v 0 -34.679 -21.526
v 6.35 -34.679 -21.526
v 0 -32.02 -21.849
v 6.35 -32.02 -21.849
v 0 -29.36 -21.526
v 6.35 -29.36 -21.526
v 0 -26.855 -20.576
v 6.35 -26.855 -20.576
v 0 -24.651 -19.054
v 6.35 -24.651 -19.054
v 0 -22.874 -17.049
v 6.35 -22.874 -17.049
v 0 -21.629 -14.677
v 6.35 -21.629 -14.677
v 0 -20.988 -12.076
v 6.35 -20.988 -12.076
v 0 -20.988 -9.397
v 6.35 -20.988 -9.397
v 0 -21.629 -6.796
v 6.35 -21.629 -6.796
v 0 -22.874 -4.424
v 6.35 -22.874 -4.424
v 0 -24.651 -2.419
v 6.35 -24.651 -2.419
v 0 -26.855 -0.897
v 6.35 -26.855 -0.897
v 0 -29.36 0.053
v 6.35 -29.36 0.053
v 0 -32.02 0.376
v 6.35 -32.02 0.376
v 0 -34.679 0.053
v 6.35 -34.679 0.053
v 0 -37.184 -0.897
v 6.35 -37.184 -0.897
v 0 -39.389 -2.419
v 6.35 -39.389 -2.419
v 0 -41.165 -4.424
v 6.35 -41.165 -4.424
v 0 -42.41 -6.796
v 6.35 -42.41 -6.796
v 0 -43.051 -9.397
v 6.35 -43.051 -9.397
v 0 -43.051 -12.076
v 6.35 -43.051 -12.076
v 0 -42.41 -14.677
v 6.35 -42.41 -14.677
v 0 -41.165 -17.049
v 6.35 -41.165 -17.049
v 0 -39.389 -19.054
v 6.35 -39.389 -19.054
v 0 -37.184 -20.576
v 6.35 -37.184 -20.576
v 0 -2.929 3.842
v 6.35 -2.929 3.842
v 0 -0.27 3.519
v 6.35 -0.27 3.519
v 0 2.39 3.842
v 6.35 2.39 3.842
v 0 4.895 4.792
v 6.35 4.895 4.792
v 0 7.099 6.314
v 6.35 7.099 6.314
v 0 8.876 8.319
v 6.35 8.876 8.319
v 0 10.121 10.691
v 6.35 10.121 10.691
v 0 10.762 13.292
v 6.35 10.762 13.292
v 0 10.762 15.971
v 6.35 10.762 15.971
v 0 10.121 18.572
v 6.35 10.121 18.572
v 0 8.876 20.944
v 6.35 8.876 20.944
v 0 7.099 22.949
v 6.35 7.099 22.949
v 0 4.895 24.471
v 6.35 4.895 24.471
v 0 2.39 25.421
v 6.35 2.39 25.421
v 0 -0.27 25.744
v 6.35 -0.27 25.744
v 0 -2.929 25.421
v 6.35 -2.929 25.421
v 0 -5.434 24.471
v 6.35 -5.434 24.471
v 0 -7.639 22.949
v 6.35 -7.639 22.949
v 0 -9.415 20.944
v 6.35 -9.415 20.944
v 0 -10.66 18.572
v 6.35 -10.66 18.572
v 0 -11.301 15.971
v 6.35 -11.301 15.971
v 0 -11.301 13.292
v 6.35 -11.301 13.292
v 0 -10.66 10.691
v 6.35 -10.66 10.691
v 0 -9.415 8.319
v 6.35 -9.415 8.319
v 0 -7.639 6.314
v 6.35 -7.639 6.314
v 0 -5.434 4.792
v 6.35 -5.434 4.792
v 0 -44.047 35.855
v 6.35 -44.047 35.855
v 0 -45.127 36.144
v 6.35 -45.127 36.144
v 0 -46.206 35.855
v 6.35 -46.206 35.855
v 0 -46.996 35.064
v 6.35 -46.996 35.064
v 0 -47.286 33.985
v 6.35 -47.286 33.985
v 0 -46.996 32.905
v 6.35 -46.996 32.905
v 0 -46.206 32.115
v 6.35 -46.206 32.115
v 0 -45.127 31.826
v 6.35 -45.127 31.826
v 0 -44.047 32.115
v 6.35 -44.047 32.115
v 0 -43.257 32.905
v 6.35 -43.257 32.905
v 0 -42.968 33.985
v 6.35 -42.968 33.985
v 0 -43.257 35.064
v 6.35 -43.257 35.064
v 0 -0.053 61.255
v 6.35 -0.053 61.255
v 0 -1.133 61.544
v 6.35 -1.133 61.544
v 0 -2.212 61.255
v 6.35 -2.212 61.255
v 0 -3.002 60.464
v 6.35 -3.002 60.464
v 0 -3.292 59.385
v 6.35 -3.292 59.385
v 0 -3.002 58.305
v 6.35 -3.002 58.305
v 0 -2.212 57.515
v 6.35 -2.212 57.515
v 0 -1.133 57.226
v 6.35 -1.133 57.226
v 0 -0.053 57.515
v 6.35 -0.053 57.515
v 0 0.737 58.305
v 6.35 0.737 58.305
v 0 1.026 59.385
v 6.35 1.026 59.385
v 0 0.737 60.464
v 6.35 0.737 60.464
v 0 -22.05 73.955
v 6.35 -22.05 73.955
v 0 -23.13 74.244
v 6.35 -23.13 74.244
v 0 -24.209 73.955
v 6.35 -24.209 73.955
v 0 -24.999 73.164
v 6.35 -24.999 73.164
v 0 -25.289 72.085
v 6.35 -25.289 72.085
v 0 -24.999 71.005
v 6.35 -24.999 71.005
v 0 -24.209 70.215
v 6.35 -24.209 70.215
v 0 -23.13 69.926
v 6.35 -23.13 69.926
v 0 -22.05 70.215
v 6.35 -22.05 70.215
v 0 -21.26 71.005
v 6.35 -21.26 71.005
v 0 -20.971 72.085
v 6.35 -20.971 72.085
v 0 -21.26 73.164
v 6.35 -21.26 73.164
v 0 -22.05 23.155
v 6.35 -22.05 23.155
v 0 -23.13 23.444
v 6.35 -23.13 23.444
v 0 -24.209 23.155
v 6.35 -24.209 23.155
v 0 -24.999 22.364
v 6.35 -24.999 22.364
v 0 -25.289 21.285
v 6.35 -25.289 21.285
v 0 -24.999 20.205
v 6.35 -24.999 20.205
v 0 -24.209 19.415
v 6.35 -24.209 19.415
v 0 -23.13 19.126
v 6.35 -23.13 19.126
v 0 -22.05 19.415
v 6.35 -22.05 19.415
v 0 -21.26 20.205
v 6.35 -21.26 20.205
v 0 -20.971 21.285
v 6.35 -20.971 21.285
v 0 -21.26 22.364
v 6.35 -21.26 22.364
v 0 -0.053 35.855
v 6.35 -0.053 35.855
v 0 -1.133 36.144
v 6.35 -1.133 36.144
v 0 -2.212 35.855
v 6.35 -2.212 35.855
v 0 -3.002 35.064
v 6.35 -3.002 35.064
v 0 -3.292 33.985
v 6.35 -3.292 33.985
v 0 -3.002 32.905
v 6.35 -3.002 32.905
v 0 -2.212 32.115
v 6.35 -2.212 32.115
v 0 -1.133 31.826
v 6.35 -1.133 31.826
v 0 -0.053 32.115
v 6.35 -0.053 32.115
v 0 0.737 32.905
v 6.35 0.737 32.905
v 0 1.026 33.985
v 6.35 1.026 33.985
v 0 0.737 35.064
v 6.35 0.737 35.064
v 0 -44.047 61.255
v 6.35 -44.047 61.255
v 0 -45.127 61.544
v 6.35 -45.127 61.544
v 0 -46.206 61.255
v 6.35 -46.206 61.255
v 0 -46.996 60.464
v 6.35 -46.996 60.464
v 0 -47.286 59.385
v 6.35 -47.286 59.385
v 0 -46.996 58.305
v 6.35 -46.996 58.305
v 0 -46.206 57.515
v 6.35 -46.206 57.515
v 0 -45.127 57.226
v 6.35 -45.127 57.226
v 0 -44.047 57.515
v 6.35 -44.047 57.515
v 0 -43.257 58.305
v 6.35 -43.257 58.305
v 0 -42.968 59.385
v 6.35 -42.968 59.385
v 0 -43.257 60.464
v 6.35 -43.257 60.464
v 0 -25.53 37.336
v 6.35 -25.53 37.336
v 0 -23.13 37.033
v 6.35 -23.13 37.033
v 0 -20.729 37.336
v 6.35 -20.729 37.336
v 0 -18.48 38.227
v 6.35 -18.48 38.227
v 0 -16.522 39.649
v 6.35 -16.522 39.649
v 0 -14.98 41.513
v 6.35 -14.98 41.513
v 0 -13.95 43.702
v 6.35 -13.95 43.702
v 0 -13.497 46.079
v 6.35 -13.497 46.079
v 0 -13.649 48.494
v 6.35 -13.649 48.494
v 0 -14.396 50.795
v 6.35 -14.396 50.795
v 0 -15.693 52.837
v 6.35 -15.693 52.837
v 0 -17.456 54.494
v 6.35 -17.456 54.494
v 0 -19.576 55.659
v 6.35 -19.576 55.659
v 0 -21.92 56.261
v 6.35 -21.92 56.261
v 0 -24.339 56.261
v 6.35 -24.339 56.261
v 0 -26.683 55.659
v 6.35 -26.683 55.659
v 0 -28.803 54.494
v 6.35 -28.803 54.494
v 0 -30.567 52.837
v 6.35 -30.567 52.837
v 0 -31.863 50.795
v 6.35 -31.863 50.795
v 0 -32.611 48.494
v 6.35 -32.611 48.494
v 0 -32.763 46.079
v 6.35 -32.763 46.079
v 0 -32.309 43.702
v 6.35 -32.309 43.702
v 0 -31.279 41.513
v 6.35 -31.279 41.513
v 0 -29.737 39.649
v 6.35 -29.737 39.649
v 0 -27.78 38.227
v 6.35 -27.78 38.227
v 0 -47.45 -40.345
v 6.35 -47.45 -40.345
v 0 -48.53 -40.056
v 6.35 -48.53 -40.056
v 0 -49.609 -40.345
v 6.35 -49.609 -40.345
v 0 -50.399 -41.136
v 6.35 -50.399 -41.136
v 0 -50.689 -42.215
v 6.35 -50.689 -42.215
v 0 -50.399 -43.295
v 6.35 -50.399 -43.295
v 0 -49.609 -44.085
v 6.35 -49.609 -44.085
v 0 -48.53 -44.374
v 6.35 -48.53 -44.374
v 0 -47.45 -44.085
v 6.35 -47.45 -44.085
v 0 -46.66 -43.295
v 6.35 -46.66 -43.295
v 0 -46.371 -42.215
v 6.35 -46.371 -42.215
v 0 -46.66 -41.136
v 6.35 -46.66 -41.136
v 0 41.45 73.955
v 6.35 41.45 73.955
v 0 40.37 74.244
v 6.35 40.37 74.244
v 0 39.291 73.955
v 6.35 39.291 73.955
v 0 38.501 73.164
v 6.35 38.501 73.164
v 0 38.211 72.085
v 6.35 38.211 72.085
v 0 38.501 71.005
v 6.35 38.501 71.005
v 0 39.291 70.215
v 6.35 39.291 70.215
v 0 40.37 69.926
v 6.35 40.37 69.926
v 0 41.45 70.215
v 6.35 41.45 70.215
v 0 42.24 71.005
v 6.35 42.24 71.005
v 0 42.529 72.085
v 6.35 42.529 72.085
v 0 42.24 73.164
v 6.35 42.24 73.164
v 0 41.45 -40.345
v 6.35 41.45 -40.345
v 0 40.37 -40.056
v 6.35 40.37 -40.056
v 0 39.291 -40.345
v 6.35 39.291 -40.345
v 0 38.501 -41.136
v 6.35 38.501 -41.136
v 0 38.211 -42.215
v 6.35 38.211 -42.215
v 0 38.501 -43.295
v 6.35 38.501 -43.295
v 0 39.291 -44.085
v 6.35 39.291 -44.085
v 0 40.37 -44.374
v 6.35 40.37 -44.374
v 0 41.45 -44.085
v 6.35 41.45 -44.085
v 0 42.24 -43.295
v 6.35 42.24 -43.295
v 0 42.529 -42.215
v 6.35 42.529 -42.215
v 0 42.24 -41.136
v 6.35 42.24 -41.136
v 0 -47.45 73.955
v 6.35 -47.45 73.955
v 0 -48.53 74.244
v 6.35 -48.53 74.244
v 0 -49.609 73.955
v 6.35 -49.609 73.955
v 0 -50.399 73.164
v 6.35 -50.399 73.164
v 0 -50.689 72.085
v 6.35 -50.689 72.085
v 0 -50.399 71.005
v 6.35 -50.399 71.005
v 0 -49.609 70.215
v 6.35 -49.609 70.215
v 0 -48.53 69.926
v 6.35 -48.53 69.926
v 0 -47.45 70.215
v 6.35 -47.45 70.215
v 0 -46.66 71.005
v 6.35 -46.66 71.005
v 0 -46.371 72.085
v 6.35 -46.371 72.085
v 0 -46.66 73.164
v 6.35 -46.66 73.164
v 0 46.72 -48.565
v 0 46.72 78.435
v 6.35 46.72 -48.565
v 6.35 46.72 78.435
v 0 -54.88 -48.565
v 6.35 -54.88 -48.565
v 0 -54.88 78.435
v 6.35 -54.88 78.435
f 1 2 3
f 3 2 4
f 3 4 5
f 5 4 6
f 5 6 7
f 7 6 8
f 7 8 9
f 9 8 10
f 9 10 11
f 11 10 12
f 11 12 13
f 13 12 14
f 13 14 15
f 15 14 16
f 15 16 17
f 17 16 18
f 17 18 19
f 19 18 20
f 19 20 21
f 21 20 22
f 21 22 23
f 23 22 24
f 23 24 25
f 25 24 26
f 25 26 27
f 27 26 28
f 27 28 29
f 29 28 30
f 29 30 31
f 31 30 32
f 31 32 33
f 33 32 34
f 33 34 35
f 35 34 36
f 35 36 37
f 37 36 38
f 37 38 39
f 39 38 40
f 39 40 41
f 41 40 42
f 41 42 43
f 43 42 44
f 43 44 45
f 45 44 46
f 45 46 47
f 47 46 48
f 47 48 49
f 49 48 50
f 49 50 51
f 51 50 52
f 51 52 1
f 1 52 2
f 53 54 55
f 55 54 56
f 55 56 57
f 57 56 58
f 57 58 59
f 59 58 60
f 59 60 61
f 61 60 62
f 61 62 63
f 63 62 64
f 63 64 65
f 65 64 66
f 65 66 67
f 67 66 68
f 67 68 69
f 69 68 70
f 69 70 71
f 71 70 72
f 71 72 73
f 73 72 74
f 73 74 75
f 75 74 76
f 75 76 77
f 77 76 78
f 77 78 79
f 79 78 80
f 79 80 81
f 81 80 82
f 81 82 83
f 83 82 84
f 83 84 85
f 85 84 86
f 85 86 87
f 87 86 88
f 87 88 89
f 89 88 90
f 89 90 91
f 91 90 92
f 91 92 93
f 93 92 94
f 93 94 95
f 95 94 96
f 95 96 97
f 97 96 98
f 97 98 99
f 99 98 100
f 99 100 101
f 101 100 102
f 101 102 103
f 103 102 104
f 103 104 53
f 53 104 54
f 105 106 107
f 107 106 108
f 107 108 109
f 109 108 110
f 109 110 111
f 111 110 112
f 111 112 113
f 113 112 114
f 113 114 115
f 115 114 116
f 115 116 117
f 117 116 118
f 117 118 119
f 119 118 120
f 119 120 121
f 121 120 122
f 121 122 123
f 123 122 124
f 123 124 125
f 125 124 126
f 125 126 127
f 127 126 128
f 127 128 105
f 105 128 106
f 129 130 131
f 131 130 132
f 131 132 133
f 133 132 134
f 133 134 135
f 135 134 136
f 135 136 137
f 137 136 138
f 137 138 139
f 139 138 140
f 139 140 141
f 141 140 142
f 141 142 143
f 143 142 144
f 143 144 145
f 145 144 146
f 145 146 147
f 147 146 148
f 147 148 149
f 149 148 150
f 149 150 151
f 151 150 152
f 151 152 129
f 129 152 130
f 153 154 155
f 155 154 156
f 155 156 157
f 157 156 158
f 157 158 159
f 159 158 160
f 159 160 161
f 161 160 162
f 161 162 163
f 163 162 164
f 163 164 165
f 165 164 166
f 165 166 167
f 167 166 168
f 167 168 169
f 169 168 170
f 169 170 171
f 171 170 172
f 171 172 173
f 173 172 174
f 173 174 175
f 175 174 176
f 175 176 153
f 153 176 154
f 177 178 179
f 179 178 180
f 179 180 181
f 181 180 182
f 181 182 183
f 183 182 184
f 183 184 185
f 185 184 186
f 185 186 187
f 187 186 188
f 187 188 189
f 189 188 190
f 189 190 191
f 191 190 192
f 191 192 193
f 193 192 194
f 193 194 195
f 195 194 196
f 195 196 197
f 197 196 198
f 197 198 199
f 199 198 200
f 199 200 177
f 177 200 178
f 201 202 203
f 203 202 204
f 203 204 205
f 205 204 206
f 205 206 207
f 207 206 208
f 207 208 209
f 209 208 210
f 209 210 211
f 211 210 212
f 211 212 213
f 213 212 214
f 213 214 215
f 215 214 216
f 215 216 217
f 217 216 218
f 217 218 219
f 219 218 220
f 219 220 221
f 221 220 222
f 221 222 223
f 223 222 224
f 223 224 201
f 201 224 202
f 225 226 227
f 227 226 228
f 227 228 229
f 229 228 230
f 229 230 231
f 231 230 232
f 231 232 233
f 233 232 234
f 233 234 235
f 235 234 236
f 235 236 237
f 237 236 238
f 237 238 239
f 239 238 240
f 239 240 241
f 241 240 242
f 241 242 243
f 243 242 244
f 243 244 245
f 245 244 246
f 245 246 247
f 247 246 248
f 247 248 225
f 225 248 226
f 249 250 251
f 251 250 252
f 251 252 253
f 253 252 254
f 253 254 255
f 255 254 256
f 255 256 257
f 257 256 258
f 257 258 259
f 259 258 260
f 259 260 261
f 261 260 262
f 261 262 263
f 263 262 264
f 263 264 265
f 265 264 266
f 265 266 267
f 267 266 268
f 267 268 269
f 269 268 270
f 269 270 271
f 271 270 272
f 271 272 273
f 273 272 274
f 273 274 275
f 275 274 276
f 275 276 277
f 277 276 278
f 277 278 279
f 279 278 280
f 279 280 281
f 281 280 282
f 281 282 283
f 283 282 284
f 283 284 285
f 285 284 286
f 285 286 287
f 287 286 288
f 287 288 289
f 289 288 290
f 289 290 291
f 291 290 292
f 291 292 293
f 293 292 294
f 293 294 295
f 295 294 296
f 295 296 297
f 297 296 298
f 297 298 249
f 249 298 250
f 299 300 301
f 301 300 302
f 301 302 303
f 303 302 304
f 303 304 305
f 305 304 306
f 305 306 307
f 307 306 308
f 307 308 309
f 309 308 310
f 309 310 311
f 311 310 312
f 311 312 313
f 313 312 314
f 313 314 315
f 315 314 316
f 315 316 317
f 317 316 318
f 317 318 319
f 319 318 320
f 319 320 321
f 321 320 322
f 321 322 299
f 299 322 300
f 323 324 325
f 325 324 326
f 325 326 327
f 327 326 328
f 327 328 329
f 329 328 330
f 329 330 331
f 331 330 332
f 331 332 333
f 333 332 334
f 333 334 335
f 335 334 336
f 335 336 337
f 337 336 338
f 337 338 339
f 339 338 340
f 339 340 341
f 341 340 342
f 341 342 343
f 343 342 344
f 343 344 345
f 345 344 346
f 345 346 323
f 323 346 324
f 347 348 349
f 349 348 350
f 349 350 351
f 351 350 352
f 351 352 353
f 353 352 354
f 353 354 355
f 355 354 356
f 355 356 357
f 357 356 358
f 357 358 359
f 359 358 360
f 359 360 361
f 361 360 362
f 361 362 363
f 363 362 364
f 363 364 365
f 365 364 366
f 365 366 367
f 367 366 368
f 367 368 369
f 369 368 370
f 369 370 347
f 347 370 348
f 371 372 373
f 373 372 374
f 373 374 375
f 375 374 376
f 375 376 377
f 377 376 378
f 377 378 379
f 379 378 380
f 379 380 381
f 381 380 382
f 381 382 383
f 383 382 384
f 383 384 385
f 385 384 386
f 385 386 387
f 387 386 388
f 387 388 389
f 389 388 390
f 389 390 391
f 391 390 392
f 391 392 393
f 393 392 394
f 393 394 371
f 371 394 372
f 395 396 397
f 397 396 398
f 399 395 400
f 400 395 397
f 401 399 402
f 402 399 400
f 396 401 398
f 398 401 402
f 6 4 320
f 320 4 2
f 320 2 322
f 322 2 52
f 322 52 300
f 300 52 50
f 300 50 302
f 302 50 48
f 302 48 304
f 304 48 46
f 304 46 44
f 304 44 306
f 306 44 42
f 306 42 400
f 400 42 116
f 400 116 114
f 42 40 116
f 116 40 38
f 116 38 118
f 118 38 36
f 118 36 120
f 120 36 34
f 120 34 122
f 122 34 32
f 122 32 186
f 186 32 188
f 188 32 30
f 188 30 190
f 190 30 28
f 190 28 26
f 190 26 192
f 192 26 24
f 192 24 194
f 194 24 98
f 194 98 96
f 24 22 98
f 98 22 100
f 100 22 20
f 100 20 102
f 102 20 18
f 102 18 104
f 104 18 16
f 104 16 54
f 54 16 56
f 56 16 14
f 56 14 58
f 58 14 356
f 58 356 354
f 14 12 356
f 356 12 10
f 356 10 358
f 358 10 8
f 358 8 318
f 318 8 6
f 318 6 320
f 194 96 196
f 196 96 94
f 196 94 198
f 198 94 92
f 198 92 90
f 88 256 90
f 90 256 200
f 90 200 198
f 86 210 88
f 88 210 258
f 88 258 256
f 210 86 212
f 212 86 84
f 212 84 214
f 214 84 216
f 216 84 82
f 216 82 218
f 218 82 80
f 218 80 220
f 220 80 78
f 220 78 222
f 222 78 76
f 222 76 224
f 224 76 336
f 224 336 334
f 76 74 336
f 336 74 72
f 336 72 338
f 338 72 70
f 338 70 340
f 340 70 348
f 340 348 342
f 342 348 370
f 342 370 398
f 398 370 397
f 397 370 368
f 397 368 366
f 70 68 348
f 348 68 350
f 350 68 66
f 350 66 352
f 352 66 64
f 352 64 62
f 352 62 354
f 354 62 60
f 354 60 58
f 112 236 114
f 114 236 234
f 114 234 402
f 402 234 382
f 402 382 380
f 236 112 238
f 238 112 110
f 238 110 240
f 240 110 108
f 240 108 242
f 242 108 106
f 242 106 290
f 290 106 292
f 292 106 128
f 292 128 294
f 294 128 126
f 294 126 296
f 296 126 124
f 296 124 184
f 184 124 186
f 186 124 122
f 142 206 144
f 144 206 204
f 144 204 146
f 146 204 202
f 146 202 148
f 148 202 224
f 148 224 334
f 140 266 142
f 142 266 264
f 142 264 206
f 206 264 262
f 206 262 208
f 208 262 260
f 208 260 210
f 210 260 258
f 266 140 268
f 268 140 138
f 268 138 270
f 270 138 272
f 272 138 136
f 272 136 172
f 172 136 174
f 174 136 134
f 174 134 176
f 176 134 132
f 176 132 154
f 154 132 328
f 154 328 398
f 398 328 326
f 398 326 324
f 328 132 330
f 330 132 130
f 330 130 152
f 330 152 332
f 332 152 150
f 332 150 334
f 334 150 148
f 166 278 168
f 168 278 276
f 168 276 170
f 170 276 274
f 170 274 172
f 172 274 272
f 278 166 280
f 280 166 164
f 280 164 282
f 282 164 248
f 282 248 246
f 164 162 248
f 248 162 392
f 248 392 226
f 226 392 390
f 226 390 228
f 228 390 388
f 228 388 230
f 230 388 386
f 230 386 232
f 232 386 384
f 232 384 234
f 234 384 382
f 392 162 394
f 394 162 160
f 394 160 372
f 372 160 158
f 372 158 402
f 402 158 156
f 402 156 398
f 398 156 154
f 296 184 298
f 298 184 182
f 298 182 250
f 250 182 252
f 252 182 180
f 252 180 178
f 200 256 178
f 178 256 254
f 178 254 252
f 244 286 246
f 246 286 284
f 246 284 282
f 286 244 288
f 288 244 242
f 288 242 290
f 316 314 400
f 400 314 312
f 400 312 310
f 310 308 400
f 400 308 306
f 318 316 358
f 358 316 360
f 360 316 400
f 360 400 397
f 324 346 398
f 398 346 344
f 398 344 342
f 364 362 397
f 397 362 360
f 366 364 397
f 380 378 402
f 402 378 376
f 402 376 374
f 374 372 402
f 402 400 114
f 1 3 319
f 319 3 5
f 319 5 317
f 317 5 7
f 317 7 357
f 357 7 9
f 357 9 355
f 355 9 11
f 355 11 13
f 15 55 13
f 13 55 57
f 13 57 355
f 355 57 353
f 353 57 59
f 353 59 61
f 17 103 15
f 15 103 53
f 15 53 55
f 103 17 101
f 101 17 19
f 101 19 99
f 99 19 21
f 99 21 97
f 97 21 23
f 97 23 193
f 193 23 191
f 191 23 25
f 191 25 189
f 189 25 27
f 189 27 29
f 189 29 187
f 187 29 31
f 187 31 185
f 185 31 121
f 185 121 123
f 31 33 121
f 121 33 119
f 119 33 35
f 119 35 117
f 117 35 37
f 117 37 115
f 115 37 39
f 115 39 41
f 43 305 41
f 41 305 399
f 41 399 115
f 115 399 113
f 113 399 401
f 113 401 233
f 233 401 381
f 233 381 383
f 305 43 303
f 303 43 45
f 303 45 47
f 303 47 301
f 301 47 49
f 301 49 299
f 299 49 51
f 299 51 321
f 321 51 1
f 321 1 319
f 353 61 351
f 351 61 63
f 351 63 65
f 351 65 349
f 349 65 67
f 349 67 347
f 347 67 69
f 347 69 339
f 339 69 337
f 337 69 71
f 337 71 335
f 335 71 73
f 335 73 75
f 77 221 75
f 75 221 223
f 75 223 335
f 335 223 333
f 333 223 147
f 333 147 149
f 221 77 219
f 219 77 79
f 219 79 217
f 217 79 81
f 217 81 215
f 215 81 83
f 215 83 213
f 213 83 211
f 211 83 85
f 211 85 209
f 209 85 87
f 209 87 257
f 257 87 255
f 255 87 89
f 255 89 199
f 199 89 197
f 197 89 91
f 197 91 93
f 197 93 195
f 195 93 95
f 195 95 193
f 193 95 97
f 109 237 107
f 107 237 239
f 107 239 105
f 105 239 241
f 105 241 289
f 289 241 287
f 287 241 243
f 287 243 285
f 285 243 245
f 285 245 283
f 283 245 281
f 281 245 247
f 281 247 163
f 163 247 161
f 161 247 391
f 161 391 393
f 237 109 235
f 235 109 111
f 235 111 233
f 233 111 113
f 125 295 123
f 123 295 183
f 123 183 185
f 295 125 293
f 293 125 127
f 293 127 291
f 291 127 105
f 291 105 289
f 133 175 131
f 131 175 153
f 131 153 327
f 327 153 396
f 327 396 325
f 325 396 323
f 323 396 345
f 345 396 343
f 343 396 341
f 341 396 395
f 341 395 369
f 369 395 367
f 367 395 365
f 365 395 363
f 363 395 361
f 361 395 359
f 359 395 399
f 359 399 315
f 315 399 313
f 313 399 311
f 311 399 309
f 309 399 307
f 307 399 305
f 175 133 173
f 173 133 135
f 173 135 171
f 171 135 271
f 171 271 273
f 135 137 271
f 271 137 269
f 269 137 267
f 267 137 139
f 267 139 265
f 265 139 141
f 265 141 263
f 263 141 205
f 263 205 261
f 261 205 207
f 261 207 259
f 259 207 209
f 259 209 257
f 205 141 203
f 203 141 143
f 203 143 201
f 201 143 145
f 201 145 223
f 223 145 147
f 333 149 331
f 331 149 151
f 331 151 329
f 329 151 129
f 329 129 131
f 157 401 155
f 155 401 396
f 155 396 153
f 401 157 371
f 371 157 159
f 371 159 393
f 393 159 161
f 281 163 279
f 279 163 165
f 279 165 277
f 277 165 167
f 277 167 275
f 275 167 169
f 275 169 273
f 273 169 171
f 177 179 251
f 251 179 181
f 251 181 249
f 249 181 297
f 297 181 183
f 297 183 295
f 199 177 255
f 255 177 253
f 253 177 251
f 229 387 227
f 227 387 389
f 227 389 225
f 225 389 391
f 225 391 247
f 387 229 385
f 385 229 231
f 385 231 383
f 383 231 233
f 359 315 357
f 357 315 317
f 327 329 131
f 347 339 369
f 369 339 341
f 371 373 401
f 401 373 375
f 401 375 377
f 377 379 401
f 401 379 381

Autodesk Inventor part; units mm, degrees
ref_plane "YZ Plane" through (0, 0, 0) normal (1, 0, 0) x (0, 1, 0)
ref_plane "XZ Plane" through (0, 0, 0) normal (0, 1, 0) x (-1, 0, 0)
ref_plane "XY Plane" through (0, 0, 0) normal (0, 0, 1) x (1, 0, 0)
sketch "Sketch1" plane through (0, 0, 0) normal (1, 0, 0) x (0, 1, 0)
  line L0 (46.7204, 78.4349) -> (-54.8796, 78.4349)
  line L1 (-54.8796, 78.4349) -> (-54.8796, -48.5651)
  line L2 (-54.8796, -48.5651) -> (46.7204, -48.5651)
  line L3 (46.7204, -48.5651) -> (46.7204, 78.4349)
  point P0 (0, 0)
  dimension "d0" = 127
  dimension "d1" = 101.6
extrude "Extrusion1" add sketch "Sketch1" along normal blind 6.35
sketch "Sketch2" plane through (6.35, 0, 0) normal (1, 0, 0) x (0, 0, -1)
  line L0 (48.5651, 46.7204) -> (-78.4349, 46.7204) projected
  line L1 (-78.4349, 46.7204) -> (-78.4349, -54.8796) projected
  line L2 (-78.4349, -54.8796) -> (48.5651, -54.8796) projected
  line L3 (48.5651, -54.8796) -> (48.5651, 46.7204) projected
  point P0 (0, 0)
  point P1 (-72.0849, 40.3704)
  point P2 (42.2151, 40.3704)
  point P3 (42.2151, -48.5296)
  point P4 (-72.0849, -48.5296)
  dimension "d4" = 0
  dimension "d5" = 0
  dimension "d6" = 0
  dimension "d7" = 0
  dimension "d8" = 6.35
  dimension "d9" = 6.35
  dimension "d10" = 6.35
  dimension "d11" = 6.35
hole "Hole1" at (6.35, 40.3704, 72.0849) at (6.35, 40.3704, -42.2151) at (6.35, -48.5296, -42.2151) at (6.35, -48.5296, 72.0849) direction (-1, 0, 0) diameter 4.318 end through all
sketch "Sketch3" plane through (6.35, 0, 0) normal (1, 0, 0) x (0, 0, -1)
  circle A0 centre (-46.6849, -23.1296) radius 9.652
  line L0 (-78.4349, -54.8796) -> (48.5651, -54.8796) projected
  line L1 (-78.4349, 46.7204) -> (-78.4349, -54.8796) projected
  point P0 (0, 0)
  dimension "d19" = 19.304
  dimension "d20" = 31.75
  dimension "d21" = 31.75
extrude "Extrusion2" cut sketch "Sketch3" against normal blind 61.9125
sketch "Sketch4" plane through (6.35, 0, 0) normal (1, 0, 0) x (0, 0, -1)
  circle A0 centre (-46.6849, -23.1296) radius 9.652 projected
  circle A1 centre (-46.6849, -23.1296) radius 9.652 projected
  circle A2 centre (-46.6849, -23.1296) radius 25.4
  line L0 (-46.6849, -23.1296) -> (-105.0514, -23.1296)
  line L1 (-46.6849, -23.1296) -> (-64.9089, 8.4353)
  line L2 (-46.6849, -23.1296) -> (-26.8908, 11.1548)
  line L3 (-46.6849, -23.1296) -> (1.7612, -23.1296)
  line L4 (-46.6849, -23.1296) -> (-29.0867, -53.6105)
  line L5 (-46.6849, -23.1296) -> (-67.8043, -59.7094)
  point P0 (0, 0)
  point P1 (-72.0849, -23.1296)
  point P2 (-21.2849, -23.1296)
  point P3 (-59.3849, -1.1326)
  point P4 (-33.9849, -1.1326)
  point P5 (-33.9849, -45.1267)
  point P6 (-59.3849, -45.1267)
  dimension "d24" = 50.8
  dimension "d25" = 60
  dimension "d26" = 60
  dimension "d27" = 60
  dimension "d28" = 60
hole "Hole2" at (6.35, -23.1296, 72.0849) at (6.35, -23.1296, 21.2849) at (6.35, -1.1326, 59.3849) at (6.35, -1.1326, 33.9849) at (6.35, -45.1267, 33.9849) at (6.35, -45.1267, 59.3849) direction (-1, 0, 0) diameter 4.318 end through all
sketch "Sketch5" plane through (6.35, 0, 0) normal (1, 0, 0) x (0, 0, -1)
  circle A0 centre (-14.6316, -0.2696) radius 11.1125
  circle A1 centre (-46.6849, -23.1296) radius 9.652 projected
  circle A2 centre (-46.6849, -23.1296) radius 39.37
  point P0 (0, 0)
  dimension "d37" = 78.74
  dimension "d36" = 22.225
  dimension "d44" = 22.86
extrude "Extrusion3" cut sketch "Sketch5" against normal blind 66.675 contours A0 A2 | A2 A0 picked at (-11.8926, 2.0476) picked at (-17.7425, -2.4882)
sketch "Sketch6" plane through (6.35, 0, 0) normal (1, 0, 0) x (0, 0, -1)
  circle A0 centre (-14.6316, -0.2696) radius 11.1125 projected
  circle A1 centre (-14.6316, -0.2696) radius 40.64
  circle A2 centre (10.7367, -32.0196) radius 11.1125
  line L0 (48.5651, 46.7204) -> (-78.4349, 46.7204) projected
  point P0 (0, 0)
  dimension "d43" = 81.28
  dimension "d40" = 22.225
  dimension "d76" = 78.74
extrude "Extrusion4" cut sketch "Sketch6" against normal blind 39.6875 contours A2 A1 | A1 A2 picked at (8.3538, -29.0373) picked at (12.8293, -34.938)
properties part number "InsideMotorPlate" material "Aluminum 6061"
